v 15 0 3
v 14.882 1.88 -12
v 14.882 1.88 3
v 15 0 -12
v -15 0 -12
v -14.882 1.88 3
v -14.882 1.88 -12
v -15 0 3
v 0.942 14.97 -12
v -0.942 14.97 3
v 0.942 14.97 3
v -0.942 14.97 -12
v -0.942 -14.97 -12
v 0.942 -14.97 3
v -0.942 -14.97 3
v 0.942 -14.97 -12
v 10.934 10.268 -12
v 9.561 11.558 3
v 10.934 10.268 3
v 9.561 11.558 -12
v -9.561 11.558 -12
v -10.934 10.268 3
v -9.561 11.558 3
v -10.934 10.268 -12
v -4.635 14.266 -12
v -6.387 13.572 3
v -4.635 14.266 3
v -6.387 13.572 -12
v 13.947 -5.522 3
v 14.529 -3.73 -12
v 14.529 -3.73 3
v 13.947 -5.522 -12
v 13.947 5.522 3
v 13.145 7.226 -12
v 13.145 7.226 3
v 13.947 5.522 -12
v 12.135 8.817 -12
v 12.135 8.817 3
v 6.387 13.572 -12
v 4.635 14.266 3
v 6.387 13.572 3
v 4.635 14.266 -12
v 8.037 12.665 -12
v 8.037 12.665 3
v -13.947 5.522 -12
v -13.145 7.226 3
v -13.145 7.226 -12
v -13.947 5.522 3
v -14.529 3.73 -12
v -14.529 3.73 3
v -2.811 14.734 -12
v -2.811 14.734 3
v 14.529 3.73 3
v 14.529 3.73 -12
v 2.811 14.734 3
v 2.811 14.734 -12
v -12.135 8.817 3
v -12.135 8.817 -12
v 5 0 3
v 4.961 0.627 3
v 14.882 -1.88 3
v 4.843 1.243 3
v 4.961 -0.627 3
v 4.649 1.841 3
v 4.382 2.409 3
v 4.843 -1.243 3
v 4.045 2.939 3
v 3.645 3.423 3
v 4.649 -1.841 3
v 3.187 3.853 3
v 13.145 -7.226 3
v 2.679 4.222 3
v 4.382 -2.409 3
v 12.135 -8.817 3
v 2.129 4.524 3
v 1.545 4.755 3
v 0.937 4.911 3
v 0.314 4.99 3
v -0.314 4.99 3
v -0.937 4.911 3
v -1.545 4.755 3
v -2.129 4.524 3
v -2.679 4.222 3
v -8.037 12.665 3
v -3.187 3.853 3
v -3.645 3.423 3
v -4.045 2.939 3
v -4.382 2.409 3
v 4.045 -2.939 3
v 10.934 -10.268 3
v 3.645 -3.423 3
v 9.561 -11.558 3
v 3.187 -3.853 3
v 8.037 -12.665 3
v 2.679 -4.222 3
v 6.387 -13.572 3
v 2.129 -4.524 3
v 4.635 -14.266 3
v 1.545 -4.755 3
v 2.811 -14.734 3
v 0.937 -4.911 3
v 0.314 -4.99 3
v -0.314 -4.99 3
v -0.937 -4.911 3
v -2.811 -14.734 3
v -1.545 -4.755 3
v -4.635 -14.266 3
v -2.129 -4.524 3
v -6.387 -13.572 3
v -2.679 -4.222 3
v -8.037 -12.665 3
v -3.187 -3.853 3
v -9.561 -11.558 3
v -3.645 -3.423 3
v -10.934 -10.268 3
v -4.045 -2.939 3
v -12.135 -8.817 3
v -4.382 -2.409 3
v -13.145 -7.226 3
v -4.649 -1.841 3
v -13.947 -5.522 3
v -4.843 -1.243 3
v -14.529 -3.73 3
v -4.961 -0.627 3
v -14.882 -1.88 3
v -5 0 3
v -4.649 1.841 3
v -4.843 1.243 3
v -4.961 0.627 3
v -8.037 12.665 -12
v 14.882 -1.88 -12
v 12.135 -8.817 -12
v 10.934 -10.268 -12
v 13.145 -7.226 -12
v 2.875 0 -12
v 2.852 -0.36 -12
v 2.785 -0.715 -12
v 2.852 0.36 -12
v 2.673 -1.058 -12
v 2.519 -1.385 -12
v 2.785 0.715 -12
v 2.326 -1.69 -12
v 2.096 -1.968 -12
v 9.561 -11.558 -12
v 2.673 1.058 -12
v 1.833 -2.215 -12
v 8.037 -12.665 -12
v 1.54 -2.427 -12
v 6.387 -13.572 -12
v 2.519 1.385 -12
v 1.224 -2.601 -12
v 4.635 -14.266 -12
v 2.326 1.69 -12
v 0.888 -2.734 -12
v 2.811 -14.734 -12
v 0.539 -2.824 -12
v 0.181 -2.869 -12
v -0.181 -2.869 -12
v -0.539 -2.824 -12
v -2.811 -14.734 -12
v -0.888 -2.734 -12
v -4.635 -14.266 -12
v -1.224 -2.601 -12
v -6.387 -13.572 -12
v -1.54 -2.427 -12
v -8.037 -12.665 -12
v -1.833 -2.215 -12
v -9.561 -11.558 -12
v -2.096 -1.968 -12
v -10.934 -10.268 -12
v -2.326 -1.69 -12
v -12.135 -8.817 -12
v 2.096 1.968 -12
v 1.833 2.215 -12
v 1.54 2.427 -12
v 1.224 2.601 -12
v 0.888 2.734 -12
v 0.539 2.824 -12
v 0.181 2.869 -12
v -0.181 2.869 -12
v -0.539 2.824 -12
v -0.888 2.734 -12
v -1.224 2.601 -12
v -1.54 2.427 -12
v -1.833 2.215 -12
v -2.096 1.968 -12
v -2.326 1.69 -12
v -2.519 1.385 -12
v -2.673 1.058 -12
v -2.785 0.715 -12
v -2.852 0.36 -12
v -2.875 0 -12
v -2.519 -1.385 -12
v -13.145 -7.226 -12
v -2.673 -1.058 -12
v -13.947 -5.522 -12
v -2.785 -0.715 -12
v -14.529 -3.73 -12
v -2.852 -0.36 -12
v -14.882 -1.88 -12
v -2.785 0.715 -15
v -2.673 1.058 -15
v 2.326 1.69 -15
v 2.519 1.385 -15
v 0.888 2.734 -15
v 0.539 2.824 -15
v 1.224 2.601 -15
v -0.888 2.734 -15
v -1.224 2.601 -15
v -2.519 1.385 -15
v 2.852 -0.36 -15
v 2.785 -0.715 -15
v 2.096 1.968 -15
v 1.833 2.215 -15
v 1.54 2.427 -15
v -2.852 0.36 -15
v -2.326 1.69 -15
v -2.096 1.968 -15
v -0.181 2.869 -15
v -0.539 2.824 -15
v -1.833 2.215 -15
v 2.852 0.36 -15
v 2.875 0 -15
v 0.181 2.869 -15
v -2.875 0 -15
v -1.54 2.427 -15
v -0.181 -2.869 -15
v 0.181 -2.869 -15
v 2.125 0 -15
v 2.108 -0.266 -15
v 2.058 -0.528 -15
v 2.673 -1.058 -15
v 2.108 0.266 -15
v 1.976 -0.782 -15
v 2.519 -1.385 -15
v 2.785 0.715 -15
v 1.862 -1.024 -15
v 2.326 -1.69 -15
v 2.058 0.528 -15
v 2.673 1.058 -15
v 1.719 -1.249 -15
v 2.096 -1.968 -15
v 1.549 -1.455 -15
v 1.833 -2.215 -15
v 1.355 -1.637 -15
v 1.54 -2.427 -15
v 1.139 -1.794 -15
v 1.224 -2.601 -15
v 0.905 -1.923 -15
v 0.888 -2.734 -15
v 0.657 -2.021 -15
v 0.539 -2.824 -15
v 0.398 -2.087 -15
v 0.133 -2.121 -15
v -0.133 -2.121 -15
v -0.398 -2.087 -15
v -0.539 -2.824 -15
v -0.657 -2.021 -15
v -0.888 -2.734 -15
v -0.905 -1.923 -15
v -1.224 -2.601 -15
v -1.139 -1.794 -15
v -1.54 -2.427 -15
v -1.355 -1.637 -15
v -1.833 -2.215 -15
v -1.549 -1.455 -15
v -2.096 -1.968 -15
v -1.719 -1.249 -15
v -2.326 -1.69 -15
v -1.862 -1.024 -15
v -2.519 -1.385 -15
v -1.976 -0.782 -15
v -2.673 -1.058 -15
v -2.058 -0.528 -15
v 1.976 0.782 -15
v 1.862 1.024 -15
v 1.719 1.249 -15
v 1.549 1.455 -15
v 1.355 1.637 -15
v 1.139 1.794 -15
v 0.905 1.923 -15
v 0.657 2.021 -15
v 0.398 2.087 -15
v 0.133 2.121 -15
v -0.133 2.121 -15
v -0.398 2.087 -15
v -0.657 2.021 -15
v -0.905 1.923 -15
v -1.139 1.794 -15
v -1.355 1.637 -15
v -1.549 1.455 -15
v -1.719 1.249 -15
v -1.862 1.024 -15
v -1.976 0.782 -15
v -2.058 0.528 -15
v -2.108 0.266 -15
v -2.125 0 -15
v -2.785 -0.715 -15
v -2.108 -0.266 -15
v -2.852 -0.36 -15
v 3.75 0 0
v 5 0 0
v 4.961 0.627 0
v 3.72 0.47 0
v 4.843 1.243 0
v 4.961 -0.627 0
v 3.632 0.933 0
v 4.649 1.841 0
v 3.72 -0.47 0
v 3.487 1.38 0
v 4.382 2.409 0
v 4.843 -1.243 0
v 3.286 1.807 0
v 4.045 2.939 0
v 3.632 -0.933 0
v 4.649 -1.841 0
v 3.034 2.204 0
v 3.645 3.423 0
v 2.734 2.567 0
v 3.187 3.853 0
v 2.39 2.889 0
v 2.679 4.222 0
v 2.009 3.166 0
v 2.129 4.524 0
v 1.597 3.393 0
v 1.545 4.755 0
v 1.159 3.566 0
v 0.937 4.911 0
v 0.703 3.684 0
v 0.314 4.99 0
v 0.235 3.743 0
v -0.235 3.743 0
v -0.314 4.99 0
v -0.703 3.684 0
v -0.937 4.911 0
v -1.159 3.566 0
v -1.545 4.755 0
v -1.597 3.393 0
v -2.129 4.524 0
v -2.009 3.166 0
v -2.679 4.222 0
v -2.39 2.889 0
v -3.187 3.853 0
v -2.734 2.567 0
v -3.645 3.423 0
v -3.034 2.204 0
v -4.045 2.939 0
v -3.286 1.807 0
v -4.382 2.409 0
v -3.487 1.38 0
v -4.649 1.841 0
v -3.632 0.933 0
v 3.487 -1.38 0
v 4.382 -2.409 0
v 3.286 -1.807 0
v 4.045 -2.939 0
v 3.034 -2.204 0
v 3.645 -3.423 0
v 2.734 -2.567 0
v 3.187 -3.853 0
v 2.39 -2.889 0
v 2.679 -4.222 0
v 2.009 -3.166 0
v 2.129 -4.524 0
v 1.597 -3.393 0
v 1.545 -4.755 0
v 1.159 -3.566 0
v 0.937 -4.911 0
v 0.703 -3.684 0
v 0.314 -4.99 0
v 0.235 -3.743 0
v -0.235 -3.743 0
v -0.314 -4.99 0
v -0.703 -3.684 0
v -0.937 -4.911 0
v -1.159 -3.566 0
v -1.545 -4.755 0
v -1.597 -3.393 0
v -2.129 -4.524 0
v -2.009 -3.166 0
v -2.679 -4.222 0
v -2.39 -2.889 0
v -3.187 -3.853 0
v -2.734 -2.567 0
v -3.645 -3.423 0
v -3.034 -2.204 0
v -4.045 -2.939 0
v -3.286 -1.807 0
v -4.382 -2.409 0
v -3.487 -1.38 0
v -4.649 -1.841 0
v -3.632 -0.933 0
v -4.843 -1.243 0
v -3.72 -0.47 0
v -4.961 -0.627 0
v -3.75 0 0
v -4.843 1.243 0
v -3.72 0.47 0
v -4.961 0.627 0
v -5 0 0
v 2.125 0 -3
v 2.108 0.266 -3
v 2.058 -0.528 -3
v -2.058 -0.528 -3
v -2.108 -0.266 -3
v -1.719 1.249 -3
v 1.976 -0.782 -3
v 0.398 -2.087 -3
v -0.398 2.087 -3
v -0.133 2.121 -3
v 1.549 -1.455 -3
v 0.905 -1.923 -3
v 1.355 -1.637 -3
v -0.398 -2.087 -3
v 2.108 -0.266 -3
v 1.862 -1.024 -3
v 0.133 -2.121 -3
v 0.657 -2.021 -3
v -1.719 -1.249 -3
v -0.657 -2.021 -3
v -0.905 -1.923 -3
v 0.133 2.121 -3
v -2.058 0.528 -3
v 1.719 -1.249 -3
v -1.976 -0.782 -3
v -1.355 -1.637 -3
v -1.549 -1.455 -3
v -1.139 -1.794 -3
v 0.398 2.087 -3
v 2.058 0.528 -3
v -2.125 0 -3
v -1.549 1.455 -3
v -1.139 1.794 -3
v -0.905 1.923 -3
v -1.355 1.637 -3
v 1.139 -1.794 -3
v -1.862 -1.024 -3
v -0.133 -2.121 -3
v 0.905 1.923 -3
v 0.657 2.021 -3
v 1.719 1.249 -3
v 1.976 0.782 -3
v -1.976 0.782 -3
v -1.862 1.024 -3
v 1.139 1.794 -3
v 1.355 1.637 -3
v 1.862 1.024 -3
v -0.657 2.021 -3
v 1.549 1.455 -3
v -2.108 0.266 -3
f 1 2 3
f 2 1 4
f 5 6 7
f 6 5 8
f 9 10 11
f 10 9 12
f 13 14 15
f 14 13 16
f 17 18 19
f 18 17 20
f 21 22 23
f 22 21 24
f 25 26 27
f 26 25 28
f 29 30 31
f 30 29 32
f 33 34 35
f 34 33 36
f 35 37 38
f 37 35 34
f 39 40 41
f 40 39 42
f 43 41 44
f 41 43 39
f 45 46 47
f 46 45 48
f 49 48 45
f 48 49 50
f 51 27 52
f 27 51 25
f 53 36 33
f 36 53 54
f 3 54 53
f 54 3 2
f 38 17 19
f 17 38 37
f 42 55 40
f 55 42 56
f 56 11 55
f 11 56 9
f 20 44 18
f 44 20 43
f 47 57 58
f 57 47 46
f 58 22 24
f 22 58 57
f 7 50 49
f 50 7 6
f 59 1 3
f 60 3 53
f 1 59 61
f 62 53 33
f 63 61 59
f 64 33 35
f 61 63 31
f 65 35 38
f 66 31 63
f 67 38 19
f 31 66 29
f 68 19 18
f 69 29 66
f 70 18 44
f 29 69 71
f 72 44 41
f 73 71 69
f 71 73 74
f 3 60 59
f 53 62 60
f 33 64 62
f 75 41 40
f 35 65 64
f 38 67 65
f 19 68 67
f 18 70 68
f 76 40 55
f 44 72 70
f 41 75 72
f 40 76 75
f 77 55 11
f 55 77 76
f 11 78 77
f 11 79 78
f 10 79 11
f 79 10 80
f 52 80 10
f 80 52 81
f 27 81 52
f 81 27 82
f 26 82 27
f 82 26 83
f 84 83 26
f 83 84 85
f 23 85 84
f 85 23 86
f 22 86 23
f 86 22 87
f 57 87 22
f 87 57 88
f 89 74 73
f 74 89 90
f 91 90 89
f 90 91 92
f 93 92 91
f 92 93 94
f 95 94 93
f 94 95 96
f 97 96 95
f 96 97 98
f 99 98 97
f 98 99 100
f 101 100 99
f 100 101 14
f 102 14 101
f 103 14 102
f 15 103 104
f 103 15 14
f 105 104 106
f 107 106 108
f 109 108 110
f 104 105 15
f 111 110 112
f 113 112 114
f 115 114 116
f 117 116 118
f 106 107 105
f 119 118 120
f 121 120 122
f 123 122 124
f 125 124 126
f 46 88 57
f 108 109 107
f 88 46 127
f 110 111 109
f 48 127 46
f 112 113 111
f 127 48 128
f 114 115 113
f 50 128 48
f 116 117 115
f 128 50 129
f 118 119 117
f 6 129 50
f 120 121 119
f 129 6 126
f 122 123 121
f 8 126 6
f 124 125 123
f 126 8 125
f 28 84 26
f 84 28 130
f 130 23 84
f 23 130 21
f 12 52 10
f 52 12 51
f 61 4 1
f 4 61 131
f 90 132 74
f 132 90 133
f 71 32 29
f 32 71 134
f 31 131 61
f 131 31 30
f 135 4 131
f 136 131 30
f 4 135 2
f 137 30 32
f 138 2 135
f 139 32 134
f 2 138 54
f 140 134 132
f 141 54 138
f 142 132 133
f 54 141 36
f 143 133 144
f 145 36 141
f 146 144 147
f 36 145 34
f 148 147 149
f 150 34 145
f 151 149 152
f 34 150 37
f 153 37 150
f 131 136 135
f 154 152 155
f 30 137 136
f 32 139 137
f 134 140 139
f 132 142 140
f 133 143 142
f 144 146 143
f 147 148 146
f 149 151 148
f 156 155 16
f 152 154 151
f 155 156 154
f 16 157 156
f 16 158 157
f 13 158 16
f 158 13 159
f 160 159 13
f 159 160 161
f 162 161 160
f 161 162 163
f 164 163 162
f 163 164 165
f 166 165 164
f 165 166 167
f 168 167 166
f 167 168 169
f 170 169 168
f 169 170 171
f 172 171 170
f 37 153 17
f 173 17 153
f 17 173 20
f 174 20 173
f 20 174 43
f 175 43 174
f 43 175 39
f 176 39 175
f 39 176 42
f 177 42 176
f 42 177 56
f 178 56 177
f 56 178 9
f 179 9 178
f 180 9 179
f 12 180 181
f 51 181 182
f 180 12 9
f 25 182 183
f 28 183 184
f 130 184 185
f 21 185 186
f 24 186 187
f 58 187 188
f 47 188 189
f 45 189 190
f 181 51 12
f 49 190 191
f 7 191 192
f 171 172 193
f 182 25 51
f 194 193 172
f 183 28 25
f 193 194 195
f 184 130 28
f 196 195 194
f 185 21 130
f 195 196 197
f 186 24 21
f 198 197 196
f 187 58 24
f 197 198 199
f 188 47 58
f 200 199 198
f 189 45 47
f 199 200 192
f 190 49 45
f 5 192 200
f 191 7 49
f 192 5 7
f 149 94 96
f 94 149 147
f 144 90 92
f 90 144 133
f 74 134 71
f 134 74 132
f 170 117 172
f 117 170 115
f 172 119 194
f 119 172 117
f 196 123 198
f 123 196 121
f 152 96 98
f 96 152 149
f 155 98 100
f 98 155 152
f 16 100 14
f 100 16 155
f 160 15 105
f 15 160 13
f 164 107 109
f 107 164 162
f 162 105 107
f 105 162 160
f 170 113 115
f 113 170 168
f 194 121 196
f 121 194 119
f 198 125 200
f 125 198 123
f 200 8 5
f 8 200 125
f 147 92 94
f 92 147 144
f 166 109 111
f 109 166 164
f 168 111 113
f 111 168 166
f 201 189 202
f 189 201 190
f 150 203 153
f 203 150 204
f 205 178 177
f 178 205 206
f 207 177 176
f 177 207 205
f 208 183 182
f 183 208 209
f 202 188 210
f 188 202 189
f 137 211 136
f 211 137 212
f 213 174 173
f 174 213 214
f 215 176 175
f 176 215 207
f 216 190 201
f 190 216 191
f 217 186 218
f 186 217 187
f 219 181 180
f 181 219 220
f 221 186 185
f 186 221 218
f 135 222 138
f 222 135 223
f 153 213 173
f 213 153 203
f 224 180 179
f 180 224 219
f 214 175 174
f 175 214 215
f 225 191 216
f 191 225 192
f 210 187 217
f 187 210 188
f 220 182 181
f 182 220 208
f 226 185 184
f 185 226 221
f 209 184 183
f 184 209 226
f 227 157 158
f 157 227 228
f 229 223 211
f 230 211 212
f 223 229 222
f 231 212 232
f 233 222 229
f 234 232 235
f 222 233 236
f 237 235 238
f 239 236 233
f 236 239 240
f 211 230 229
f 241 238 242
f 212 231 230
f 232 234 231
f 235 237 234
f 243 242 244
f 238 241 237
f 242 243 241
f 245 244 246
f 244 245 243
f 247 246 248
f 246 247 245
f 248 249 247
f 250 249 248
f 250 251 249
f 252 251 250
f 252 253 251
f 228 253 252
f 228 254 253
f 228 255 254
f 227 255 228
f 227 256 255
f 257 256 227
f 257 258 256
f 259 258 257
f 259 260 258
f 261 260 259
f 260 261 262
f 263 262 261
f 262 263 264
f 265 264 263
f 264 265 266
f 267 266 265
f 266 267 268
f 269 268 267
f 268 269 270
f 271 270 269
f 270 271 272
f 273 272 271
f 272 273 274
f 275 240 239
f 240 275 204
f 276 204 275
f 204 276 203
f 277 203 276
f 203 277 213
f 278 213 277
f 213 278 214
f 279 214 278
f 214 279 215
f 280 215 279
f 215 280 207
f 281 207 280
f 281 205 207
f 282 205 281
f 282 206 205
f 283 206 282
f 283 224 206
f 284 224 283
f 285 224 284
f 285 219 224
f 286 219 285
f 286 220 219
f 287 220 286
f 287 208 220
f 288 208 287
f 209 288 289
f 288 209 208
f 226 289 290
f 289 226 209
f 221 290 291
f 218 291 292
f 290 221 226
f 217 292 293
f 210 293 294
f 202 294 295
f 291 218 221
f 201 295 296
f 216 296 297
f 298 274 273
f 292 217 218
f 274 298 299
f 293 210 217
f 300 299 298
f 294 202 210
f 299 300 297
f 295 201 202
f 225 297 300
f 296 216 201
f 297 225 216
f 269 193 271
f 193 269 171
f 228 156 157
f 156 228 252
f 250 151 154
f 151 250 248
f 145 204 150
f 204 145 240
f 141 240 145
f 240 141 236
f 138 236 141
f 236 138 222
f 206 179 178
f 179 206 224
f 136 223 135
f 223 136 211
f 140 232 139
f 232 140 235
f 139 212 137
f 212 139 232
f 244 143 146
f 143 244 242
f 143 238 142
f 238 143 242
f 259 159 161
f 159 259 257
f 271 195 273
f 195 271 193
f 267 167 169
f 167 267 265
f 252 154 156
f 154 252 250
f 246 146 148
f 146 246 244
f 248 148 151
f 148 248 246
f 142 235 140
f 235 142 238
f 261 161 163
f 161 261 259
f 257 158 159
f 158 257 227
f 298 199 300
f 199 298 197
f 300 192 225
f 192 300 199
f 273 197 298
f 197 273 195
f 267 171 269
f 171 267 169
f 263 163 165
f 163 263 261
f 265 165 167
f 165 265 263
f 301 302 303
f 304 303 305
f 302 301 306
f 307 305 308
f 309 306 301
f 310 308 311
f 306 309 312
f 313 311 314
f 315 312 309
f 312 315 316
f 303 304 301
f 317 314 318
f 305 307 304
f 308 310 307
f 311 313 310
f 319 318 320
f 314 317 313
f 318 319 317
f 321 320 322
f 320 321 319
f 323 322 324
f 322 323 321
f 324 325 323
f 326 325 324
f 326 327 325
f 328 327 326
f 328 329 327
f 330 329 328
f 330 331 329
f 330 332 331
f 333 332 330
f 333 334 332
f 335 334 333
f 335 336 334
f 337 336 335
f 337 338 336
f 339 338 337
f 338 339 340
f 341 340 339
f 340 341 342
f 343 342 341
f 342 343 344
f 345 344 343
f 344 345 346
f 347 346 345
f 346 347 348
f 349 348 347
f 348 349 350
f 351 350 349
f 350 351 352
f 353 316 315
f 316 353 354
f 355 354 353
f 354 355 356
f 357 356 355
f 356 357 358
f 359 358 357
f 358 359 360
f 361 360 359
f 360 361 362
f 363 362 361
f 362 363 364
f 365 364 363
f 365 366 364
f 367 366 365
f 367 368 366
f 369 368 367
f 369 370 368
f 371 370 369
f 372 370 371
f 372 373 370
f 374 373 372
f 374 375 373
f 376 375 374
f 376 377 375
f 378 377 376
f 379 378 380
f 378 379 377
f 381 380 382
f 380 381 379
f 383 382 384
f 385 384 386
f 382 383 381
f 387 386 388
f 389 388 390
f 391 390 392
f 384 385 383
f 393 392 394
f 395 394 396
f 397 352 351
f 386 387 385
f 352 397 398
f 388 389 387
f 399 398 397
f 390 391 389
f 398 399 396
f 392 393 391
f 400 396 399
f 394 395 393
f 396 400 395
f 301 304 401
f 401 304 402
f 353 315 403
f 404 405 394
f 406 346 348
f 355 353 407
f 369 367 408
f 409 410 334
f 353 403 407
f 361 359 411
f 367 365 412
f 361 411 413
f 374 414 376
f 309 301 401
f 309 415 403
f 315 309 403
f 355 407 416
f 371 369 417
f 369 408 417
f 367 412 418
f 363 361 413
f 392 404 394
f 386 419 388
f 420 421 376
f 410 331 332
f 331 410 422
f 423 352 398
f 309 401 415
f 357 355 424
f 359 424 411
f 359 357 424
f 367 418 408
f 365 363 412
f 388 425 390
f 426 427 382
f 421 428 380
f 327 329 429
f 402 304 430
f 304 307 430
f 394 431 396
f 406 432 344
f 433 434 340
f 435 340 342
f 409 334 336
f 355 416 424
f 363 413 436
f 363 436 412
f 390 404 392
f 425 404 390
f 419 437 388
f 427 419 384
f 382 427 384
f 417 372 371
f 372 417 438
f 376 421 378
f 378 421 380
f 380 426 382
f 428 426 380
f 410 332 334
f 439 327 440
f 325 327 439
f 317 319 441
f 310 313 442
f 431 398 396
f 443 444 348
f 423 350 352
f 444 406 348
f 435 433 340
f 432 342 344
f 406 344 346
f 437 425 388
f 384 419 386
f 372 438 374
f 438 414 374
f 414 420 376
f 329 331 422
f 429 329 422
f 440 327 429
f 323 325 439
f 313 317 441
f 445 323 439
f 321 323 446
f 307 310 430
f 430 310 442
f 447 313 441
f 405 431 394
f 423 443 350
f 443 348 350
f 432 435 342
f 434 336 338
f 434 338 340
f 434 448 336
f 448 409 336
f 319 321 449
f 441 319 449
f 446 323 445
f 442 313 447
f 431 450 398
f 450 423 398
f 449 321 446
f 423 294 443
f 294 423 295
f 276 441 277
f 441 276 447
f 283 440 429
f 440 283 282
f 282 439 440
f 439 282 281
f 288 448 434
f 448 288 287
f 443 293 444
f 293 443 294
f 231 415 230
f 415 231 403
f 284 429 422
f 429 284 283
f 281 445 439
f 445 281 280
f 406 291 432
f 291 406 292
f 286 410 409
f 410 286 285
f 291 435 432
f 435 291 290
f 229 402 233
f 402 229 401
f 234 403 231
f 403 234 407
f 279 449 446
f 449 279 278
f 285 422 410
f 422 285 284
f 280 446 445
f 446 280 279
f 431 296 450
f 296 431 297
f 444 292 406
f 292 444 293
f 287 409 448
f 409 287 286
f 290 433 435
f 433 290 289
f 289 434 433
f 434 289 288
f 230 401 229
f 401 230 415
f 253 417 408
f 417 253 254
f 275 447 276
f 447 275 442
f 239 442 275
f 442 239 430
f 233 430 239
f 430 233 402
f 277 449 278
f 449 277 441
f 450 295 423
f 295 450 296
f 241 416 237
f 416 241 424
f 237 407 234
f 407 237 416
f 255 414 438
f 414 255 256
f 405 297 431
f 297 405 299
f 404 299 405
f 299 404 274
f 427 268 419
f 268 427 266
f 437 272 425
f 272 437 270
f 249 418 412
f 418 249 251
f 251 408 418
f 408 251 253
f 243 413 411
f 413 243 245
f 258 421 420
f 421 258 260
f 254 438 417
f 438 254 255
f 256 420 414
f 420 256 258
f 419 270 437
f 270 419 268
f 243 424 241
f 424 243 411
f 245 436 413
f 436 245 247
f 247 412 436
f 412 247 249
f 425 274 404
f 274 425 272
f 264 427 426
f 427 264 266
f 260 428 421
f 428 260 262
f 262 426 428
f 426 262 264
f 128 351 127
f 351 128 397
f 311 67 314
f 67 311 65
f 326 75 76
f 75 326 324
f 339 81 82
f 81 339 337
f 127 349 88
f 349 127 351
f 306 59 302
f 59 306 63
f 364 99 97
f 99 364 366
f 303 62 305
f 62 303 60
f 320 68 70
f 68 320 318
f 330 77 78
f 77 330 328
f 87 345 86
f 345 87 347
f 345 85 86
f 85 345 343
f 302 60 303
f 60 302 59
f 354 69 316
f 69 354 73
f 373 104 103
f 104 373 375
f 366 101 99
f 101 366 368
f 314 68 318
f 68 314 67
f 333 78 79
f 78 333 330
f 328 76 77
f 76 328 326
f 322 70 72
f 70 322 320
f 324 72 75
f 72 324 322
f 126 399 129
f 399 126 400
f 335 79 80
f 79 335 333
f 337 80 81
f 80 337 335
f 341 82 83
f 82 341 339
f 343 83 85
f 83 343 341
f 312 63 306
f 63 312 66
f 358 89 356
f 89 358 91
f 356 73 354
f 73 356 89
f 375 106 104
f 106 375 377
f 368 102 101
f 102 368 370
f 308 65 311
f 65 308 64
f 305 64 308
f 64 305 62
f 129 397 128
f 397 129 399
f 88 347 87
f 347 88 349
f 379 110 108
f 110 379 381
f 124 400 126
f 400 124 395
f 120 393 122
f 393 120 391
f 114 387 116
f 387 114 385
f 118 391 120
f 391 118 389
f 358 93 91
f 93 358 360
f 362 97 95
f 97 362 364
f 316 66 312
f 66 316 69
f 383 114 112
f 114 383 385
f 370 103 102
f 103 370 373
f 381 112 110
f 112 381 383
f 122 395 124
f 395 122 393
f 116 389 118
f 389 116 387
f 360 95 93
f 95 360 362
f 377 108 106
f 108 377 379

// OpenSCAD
$fn = 50;

difference() {
	union() {
		translate(v = [0, 0, -12.0]) {
			cylinder(h = 15, r = 15.0);
		}
		#translate(v = [0, 0, -15.0]) {
			cylinder(h = 15, r = 2.875);
		}
	}
	union() {
		translate(v = [0, 0, 0]) {
			rotate(a = [0, 0, 0]) {
				difference() {
					union() {
						translate(v = [0, 0, -15.0]) {
							cylinder(h = 15, r = 2.0);
						}
						translate(v = [0, 0, -3]) {
							cylinder(h = 3, r1 = 2.125, r2 = 3.75);
						}
						translate(v = [0, 0, -15.0]) {
							cylinder(h = 15, r = 2.125);
						}
						translate(v = [0, 0, -15.0]) {
							cylinder(h = 15, r = 2.0);
						}
					}
					union();
				}
			}
		}
		#cylinder(h = 3, r = 5.0);
	}
}
